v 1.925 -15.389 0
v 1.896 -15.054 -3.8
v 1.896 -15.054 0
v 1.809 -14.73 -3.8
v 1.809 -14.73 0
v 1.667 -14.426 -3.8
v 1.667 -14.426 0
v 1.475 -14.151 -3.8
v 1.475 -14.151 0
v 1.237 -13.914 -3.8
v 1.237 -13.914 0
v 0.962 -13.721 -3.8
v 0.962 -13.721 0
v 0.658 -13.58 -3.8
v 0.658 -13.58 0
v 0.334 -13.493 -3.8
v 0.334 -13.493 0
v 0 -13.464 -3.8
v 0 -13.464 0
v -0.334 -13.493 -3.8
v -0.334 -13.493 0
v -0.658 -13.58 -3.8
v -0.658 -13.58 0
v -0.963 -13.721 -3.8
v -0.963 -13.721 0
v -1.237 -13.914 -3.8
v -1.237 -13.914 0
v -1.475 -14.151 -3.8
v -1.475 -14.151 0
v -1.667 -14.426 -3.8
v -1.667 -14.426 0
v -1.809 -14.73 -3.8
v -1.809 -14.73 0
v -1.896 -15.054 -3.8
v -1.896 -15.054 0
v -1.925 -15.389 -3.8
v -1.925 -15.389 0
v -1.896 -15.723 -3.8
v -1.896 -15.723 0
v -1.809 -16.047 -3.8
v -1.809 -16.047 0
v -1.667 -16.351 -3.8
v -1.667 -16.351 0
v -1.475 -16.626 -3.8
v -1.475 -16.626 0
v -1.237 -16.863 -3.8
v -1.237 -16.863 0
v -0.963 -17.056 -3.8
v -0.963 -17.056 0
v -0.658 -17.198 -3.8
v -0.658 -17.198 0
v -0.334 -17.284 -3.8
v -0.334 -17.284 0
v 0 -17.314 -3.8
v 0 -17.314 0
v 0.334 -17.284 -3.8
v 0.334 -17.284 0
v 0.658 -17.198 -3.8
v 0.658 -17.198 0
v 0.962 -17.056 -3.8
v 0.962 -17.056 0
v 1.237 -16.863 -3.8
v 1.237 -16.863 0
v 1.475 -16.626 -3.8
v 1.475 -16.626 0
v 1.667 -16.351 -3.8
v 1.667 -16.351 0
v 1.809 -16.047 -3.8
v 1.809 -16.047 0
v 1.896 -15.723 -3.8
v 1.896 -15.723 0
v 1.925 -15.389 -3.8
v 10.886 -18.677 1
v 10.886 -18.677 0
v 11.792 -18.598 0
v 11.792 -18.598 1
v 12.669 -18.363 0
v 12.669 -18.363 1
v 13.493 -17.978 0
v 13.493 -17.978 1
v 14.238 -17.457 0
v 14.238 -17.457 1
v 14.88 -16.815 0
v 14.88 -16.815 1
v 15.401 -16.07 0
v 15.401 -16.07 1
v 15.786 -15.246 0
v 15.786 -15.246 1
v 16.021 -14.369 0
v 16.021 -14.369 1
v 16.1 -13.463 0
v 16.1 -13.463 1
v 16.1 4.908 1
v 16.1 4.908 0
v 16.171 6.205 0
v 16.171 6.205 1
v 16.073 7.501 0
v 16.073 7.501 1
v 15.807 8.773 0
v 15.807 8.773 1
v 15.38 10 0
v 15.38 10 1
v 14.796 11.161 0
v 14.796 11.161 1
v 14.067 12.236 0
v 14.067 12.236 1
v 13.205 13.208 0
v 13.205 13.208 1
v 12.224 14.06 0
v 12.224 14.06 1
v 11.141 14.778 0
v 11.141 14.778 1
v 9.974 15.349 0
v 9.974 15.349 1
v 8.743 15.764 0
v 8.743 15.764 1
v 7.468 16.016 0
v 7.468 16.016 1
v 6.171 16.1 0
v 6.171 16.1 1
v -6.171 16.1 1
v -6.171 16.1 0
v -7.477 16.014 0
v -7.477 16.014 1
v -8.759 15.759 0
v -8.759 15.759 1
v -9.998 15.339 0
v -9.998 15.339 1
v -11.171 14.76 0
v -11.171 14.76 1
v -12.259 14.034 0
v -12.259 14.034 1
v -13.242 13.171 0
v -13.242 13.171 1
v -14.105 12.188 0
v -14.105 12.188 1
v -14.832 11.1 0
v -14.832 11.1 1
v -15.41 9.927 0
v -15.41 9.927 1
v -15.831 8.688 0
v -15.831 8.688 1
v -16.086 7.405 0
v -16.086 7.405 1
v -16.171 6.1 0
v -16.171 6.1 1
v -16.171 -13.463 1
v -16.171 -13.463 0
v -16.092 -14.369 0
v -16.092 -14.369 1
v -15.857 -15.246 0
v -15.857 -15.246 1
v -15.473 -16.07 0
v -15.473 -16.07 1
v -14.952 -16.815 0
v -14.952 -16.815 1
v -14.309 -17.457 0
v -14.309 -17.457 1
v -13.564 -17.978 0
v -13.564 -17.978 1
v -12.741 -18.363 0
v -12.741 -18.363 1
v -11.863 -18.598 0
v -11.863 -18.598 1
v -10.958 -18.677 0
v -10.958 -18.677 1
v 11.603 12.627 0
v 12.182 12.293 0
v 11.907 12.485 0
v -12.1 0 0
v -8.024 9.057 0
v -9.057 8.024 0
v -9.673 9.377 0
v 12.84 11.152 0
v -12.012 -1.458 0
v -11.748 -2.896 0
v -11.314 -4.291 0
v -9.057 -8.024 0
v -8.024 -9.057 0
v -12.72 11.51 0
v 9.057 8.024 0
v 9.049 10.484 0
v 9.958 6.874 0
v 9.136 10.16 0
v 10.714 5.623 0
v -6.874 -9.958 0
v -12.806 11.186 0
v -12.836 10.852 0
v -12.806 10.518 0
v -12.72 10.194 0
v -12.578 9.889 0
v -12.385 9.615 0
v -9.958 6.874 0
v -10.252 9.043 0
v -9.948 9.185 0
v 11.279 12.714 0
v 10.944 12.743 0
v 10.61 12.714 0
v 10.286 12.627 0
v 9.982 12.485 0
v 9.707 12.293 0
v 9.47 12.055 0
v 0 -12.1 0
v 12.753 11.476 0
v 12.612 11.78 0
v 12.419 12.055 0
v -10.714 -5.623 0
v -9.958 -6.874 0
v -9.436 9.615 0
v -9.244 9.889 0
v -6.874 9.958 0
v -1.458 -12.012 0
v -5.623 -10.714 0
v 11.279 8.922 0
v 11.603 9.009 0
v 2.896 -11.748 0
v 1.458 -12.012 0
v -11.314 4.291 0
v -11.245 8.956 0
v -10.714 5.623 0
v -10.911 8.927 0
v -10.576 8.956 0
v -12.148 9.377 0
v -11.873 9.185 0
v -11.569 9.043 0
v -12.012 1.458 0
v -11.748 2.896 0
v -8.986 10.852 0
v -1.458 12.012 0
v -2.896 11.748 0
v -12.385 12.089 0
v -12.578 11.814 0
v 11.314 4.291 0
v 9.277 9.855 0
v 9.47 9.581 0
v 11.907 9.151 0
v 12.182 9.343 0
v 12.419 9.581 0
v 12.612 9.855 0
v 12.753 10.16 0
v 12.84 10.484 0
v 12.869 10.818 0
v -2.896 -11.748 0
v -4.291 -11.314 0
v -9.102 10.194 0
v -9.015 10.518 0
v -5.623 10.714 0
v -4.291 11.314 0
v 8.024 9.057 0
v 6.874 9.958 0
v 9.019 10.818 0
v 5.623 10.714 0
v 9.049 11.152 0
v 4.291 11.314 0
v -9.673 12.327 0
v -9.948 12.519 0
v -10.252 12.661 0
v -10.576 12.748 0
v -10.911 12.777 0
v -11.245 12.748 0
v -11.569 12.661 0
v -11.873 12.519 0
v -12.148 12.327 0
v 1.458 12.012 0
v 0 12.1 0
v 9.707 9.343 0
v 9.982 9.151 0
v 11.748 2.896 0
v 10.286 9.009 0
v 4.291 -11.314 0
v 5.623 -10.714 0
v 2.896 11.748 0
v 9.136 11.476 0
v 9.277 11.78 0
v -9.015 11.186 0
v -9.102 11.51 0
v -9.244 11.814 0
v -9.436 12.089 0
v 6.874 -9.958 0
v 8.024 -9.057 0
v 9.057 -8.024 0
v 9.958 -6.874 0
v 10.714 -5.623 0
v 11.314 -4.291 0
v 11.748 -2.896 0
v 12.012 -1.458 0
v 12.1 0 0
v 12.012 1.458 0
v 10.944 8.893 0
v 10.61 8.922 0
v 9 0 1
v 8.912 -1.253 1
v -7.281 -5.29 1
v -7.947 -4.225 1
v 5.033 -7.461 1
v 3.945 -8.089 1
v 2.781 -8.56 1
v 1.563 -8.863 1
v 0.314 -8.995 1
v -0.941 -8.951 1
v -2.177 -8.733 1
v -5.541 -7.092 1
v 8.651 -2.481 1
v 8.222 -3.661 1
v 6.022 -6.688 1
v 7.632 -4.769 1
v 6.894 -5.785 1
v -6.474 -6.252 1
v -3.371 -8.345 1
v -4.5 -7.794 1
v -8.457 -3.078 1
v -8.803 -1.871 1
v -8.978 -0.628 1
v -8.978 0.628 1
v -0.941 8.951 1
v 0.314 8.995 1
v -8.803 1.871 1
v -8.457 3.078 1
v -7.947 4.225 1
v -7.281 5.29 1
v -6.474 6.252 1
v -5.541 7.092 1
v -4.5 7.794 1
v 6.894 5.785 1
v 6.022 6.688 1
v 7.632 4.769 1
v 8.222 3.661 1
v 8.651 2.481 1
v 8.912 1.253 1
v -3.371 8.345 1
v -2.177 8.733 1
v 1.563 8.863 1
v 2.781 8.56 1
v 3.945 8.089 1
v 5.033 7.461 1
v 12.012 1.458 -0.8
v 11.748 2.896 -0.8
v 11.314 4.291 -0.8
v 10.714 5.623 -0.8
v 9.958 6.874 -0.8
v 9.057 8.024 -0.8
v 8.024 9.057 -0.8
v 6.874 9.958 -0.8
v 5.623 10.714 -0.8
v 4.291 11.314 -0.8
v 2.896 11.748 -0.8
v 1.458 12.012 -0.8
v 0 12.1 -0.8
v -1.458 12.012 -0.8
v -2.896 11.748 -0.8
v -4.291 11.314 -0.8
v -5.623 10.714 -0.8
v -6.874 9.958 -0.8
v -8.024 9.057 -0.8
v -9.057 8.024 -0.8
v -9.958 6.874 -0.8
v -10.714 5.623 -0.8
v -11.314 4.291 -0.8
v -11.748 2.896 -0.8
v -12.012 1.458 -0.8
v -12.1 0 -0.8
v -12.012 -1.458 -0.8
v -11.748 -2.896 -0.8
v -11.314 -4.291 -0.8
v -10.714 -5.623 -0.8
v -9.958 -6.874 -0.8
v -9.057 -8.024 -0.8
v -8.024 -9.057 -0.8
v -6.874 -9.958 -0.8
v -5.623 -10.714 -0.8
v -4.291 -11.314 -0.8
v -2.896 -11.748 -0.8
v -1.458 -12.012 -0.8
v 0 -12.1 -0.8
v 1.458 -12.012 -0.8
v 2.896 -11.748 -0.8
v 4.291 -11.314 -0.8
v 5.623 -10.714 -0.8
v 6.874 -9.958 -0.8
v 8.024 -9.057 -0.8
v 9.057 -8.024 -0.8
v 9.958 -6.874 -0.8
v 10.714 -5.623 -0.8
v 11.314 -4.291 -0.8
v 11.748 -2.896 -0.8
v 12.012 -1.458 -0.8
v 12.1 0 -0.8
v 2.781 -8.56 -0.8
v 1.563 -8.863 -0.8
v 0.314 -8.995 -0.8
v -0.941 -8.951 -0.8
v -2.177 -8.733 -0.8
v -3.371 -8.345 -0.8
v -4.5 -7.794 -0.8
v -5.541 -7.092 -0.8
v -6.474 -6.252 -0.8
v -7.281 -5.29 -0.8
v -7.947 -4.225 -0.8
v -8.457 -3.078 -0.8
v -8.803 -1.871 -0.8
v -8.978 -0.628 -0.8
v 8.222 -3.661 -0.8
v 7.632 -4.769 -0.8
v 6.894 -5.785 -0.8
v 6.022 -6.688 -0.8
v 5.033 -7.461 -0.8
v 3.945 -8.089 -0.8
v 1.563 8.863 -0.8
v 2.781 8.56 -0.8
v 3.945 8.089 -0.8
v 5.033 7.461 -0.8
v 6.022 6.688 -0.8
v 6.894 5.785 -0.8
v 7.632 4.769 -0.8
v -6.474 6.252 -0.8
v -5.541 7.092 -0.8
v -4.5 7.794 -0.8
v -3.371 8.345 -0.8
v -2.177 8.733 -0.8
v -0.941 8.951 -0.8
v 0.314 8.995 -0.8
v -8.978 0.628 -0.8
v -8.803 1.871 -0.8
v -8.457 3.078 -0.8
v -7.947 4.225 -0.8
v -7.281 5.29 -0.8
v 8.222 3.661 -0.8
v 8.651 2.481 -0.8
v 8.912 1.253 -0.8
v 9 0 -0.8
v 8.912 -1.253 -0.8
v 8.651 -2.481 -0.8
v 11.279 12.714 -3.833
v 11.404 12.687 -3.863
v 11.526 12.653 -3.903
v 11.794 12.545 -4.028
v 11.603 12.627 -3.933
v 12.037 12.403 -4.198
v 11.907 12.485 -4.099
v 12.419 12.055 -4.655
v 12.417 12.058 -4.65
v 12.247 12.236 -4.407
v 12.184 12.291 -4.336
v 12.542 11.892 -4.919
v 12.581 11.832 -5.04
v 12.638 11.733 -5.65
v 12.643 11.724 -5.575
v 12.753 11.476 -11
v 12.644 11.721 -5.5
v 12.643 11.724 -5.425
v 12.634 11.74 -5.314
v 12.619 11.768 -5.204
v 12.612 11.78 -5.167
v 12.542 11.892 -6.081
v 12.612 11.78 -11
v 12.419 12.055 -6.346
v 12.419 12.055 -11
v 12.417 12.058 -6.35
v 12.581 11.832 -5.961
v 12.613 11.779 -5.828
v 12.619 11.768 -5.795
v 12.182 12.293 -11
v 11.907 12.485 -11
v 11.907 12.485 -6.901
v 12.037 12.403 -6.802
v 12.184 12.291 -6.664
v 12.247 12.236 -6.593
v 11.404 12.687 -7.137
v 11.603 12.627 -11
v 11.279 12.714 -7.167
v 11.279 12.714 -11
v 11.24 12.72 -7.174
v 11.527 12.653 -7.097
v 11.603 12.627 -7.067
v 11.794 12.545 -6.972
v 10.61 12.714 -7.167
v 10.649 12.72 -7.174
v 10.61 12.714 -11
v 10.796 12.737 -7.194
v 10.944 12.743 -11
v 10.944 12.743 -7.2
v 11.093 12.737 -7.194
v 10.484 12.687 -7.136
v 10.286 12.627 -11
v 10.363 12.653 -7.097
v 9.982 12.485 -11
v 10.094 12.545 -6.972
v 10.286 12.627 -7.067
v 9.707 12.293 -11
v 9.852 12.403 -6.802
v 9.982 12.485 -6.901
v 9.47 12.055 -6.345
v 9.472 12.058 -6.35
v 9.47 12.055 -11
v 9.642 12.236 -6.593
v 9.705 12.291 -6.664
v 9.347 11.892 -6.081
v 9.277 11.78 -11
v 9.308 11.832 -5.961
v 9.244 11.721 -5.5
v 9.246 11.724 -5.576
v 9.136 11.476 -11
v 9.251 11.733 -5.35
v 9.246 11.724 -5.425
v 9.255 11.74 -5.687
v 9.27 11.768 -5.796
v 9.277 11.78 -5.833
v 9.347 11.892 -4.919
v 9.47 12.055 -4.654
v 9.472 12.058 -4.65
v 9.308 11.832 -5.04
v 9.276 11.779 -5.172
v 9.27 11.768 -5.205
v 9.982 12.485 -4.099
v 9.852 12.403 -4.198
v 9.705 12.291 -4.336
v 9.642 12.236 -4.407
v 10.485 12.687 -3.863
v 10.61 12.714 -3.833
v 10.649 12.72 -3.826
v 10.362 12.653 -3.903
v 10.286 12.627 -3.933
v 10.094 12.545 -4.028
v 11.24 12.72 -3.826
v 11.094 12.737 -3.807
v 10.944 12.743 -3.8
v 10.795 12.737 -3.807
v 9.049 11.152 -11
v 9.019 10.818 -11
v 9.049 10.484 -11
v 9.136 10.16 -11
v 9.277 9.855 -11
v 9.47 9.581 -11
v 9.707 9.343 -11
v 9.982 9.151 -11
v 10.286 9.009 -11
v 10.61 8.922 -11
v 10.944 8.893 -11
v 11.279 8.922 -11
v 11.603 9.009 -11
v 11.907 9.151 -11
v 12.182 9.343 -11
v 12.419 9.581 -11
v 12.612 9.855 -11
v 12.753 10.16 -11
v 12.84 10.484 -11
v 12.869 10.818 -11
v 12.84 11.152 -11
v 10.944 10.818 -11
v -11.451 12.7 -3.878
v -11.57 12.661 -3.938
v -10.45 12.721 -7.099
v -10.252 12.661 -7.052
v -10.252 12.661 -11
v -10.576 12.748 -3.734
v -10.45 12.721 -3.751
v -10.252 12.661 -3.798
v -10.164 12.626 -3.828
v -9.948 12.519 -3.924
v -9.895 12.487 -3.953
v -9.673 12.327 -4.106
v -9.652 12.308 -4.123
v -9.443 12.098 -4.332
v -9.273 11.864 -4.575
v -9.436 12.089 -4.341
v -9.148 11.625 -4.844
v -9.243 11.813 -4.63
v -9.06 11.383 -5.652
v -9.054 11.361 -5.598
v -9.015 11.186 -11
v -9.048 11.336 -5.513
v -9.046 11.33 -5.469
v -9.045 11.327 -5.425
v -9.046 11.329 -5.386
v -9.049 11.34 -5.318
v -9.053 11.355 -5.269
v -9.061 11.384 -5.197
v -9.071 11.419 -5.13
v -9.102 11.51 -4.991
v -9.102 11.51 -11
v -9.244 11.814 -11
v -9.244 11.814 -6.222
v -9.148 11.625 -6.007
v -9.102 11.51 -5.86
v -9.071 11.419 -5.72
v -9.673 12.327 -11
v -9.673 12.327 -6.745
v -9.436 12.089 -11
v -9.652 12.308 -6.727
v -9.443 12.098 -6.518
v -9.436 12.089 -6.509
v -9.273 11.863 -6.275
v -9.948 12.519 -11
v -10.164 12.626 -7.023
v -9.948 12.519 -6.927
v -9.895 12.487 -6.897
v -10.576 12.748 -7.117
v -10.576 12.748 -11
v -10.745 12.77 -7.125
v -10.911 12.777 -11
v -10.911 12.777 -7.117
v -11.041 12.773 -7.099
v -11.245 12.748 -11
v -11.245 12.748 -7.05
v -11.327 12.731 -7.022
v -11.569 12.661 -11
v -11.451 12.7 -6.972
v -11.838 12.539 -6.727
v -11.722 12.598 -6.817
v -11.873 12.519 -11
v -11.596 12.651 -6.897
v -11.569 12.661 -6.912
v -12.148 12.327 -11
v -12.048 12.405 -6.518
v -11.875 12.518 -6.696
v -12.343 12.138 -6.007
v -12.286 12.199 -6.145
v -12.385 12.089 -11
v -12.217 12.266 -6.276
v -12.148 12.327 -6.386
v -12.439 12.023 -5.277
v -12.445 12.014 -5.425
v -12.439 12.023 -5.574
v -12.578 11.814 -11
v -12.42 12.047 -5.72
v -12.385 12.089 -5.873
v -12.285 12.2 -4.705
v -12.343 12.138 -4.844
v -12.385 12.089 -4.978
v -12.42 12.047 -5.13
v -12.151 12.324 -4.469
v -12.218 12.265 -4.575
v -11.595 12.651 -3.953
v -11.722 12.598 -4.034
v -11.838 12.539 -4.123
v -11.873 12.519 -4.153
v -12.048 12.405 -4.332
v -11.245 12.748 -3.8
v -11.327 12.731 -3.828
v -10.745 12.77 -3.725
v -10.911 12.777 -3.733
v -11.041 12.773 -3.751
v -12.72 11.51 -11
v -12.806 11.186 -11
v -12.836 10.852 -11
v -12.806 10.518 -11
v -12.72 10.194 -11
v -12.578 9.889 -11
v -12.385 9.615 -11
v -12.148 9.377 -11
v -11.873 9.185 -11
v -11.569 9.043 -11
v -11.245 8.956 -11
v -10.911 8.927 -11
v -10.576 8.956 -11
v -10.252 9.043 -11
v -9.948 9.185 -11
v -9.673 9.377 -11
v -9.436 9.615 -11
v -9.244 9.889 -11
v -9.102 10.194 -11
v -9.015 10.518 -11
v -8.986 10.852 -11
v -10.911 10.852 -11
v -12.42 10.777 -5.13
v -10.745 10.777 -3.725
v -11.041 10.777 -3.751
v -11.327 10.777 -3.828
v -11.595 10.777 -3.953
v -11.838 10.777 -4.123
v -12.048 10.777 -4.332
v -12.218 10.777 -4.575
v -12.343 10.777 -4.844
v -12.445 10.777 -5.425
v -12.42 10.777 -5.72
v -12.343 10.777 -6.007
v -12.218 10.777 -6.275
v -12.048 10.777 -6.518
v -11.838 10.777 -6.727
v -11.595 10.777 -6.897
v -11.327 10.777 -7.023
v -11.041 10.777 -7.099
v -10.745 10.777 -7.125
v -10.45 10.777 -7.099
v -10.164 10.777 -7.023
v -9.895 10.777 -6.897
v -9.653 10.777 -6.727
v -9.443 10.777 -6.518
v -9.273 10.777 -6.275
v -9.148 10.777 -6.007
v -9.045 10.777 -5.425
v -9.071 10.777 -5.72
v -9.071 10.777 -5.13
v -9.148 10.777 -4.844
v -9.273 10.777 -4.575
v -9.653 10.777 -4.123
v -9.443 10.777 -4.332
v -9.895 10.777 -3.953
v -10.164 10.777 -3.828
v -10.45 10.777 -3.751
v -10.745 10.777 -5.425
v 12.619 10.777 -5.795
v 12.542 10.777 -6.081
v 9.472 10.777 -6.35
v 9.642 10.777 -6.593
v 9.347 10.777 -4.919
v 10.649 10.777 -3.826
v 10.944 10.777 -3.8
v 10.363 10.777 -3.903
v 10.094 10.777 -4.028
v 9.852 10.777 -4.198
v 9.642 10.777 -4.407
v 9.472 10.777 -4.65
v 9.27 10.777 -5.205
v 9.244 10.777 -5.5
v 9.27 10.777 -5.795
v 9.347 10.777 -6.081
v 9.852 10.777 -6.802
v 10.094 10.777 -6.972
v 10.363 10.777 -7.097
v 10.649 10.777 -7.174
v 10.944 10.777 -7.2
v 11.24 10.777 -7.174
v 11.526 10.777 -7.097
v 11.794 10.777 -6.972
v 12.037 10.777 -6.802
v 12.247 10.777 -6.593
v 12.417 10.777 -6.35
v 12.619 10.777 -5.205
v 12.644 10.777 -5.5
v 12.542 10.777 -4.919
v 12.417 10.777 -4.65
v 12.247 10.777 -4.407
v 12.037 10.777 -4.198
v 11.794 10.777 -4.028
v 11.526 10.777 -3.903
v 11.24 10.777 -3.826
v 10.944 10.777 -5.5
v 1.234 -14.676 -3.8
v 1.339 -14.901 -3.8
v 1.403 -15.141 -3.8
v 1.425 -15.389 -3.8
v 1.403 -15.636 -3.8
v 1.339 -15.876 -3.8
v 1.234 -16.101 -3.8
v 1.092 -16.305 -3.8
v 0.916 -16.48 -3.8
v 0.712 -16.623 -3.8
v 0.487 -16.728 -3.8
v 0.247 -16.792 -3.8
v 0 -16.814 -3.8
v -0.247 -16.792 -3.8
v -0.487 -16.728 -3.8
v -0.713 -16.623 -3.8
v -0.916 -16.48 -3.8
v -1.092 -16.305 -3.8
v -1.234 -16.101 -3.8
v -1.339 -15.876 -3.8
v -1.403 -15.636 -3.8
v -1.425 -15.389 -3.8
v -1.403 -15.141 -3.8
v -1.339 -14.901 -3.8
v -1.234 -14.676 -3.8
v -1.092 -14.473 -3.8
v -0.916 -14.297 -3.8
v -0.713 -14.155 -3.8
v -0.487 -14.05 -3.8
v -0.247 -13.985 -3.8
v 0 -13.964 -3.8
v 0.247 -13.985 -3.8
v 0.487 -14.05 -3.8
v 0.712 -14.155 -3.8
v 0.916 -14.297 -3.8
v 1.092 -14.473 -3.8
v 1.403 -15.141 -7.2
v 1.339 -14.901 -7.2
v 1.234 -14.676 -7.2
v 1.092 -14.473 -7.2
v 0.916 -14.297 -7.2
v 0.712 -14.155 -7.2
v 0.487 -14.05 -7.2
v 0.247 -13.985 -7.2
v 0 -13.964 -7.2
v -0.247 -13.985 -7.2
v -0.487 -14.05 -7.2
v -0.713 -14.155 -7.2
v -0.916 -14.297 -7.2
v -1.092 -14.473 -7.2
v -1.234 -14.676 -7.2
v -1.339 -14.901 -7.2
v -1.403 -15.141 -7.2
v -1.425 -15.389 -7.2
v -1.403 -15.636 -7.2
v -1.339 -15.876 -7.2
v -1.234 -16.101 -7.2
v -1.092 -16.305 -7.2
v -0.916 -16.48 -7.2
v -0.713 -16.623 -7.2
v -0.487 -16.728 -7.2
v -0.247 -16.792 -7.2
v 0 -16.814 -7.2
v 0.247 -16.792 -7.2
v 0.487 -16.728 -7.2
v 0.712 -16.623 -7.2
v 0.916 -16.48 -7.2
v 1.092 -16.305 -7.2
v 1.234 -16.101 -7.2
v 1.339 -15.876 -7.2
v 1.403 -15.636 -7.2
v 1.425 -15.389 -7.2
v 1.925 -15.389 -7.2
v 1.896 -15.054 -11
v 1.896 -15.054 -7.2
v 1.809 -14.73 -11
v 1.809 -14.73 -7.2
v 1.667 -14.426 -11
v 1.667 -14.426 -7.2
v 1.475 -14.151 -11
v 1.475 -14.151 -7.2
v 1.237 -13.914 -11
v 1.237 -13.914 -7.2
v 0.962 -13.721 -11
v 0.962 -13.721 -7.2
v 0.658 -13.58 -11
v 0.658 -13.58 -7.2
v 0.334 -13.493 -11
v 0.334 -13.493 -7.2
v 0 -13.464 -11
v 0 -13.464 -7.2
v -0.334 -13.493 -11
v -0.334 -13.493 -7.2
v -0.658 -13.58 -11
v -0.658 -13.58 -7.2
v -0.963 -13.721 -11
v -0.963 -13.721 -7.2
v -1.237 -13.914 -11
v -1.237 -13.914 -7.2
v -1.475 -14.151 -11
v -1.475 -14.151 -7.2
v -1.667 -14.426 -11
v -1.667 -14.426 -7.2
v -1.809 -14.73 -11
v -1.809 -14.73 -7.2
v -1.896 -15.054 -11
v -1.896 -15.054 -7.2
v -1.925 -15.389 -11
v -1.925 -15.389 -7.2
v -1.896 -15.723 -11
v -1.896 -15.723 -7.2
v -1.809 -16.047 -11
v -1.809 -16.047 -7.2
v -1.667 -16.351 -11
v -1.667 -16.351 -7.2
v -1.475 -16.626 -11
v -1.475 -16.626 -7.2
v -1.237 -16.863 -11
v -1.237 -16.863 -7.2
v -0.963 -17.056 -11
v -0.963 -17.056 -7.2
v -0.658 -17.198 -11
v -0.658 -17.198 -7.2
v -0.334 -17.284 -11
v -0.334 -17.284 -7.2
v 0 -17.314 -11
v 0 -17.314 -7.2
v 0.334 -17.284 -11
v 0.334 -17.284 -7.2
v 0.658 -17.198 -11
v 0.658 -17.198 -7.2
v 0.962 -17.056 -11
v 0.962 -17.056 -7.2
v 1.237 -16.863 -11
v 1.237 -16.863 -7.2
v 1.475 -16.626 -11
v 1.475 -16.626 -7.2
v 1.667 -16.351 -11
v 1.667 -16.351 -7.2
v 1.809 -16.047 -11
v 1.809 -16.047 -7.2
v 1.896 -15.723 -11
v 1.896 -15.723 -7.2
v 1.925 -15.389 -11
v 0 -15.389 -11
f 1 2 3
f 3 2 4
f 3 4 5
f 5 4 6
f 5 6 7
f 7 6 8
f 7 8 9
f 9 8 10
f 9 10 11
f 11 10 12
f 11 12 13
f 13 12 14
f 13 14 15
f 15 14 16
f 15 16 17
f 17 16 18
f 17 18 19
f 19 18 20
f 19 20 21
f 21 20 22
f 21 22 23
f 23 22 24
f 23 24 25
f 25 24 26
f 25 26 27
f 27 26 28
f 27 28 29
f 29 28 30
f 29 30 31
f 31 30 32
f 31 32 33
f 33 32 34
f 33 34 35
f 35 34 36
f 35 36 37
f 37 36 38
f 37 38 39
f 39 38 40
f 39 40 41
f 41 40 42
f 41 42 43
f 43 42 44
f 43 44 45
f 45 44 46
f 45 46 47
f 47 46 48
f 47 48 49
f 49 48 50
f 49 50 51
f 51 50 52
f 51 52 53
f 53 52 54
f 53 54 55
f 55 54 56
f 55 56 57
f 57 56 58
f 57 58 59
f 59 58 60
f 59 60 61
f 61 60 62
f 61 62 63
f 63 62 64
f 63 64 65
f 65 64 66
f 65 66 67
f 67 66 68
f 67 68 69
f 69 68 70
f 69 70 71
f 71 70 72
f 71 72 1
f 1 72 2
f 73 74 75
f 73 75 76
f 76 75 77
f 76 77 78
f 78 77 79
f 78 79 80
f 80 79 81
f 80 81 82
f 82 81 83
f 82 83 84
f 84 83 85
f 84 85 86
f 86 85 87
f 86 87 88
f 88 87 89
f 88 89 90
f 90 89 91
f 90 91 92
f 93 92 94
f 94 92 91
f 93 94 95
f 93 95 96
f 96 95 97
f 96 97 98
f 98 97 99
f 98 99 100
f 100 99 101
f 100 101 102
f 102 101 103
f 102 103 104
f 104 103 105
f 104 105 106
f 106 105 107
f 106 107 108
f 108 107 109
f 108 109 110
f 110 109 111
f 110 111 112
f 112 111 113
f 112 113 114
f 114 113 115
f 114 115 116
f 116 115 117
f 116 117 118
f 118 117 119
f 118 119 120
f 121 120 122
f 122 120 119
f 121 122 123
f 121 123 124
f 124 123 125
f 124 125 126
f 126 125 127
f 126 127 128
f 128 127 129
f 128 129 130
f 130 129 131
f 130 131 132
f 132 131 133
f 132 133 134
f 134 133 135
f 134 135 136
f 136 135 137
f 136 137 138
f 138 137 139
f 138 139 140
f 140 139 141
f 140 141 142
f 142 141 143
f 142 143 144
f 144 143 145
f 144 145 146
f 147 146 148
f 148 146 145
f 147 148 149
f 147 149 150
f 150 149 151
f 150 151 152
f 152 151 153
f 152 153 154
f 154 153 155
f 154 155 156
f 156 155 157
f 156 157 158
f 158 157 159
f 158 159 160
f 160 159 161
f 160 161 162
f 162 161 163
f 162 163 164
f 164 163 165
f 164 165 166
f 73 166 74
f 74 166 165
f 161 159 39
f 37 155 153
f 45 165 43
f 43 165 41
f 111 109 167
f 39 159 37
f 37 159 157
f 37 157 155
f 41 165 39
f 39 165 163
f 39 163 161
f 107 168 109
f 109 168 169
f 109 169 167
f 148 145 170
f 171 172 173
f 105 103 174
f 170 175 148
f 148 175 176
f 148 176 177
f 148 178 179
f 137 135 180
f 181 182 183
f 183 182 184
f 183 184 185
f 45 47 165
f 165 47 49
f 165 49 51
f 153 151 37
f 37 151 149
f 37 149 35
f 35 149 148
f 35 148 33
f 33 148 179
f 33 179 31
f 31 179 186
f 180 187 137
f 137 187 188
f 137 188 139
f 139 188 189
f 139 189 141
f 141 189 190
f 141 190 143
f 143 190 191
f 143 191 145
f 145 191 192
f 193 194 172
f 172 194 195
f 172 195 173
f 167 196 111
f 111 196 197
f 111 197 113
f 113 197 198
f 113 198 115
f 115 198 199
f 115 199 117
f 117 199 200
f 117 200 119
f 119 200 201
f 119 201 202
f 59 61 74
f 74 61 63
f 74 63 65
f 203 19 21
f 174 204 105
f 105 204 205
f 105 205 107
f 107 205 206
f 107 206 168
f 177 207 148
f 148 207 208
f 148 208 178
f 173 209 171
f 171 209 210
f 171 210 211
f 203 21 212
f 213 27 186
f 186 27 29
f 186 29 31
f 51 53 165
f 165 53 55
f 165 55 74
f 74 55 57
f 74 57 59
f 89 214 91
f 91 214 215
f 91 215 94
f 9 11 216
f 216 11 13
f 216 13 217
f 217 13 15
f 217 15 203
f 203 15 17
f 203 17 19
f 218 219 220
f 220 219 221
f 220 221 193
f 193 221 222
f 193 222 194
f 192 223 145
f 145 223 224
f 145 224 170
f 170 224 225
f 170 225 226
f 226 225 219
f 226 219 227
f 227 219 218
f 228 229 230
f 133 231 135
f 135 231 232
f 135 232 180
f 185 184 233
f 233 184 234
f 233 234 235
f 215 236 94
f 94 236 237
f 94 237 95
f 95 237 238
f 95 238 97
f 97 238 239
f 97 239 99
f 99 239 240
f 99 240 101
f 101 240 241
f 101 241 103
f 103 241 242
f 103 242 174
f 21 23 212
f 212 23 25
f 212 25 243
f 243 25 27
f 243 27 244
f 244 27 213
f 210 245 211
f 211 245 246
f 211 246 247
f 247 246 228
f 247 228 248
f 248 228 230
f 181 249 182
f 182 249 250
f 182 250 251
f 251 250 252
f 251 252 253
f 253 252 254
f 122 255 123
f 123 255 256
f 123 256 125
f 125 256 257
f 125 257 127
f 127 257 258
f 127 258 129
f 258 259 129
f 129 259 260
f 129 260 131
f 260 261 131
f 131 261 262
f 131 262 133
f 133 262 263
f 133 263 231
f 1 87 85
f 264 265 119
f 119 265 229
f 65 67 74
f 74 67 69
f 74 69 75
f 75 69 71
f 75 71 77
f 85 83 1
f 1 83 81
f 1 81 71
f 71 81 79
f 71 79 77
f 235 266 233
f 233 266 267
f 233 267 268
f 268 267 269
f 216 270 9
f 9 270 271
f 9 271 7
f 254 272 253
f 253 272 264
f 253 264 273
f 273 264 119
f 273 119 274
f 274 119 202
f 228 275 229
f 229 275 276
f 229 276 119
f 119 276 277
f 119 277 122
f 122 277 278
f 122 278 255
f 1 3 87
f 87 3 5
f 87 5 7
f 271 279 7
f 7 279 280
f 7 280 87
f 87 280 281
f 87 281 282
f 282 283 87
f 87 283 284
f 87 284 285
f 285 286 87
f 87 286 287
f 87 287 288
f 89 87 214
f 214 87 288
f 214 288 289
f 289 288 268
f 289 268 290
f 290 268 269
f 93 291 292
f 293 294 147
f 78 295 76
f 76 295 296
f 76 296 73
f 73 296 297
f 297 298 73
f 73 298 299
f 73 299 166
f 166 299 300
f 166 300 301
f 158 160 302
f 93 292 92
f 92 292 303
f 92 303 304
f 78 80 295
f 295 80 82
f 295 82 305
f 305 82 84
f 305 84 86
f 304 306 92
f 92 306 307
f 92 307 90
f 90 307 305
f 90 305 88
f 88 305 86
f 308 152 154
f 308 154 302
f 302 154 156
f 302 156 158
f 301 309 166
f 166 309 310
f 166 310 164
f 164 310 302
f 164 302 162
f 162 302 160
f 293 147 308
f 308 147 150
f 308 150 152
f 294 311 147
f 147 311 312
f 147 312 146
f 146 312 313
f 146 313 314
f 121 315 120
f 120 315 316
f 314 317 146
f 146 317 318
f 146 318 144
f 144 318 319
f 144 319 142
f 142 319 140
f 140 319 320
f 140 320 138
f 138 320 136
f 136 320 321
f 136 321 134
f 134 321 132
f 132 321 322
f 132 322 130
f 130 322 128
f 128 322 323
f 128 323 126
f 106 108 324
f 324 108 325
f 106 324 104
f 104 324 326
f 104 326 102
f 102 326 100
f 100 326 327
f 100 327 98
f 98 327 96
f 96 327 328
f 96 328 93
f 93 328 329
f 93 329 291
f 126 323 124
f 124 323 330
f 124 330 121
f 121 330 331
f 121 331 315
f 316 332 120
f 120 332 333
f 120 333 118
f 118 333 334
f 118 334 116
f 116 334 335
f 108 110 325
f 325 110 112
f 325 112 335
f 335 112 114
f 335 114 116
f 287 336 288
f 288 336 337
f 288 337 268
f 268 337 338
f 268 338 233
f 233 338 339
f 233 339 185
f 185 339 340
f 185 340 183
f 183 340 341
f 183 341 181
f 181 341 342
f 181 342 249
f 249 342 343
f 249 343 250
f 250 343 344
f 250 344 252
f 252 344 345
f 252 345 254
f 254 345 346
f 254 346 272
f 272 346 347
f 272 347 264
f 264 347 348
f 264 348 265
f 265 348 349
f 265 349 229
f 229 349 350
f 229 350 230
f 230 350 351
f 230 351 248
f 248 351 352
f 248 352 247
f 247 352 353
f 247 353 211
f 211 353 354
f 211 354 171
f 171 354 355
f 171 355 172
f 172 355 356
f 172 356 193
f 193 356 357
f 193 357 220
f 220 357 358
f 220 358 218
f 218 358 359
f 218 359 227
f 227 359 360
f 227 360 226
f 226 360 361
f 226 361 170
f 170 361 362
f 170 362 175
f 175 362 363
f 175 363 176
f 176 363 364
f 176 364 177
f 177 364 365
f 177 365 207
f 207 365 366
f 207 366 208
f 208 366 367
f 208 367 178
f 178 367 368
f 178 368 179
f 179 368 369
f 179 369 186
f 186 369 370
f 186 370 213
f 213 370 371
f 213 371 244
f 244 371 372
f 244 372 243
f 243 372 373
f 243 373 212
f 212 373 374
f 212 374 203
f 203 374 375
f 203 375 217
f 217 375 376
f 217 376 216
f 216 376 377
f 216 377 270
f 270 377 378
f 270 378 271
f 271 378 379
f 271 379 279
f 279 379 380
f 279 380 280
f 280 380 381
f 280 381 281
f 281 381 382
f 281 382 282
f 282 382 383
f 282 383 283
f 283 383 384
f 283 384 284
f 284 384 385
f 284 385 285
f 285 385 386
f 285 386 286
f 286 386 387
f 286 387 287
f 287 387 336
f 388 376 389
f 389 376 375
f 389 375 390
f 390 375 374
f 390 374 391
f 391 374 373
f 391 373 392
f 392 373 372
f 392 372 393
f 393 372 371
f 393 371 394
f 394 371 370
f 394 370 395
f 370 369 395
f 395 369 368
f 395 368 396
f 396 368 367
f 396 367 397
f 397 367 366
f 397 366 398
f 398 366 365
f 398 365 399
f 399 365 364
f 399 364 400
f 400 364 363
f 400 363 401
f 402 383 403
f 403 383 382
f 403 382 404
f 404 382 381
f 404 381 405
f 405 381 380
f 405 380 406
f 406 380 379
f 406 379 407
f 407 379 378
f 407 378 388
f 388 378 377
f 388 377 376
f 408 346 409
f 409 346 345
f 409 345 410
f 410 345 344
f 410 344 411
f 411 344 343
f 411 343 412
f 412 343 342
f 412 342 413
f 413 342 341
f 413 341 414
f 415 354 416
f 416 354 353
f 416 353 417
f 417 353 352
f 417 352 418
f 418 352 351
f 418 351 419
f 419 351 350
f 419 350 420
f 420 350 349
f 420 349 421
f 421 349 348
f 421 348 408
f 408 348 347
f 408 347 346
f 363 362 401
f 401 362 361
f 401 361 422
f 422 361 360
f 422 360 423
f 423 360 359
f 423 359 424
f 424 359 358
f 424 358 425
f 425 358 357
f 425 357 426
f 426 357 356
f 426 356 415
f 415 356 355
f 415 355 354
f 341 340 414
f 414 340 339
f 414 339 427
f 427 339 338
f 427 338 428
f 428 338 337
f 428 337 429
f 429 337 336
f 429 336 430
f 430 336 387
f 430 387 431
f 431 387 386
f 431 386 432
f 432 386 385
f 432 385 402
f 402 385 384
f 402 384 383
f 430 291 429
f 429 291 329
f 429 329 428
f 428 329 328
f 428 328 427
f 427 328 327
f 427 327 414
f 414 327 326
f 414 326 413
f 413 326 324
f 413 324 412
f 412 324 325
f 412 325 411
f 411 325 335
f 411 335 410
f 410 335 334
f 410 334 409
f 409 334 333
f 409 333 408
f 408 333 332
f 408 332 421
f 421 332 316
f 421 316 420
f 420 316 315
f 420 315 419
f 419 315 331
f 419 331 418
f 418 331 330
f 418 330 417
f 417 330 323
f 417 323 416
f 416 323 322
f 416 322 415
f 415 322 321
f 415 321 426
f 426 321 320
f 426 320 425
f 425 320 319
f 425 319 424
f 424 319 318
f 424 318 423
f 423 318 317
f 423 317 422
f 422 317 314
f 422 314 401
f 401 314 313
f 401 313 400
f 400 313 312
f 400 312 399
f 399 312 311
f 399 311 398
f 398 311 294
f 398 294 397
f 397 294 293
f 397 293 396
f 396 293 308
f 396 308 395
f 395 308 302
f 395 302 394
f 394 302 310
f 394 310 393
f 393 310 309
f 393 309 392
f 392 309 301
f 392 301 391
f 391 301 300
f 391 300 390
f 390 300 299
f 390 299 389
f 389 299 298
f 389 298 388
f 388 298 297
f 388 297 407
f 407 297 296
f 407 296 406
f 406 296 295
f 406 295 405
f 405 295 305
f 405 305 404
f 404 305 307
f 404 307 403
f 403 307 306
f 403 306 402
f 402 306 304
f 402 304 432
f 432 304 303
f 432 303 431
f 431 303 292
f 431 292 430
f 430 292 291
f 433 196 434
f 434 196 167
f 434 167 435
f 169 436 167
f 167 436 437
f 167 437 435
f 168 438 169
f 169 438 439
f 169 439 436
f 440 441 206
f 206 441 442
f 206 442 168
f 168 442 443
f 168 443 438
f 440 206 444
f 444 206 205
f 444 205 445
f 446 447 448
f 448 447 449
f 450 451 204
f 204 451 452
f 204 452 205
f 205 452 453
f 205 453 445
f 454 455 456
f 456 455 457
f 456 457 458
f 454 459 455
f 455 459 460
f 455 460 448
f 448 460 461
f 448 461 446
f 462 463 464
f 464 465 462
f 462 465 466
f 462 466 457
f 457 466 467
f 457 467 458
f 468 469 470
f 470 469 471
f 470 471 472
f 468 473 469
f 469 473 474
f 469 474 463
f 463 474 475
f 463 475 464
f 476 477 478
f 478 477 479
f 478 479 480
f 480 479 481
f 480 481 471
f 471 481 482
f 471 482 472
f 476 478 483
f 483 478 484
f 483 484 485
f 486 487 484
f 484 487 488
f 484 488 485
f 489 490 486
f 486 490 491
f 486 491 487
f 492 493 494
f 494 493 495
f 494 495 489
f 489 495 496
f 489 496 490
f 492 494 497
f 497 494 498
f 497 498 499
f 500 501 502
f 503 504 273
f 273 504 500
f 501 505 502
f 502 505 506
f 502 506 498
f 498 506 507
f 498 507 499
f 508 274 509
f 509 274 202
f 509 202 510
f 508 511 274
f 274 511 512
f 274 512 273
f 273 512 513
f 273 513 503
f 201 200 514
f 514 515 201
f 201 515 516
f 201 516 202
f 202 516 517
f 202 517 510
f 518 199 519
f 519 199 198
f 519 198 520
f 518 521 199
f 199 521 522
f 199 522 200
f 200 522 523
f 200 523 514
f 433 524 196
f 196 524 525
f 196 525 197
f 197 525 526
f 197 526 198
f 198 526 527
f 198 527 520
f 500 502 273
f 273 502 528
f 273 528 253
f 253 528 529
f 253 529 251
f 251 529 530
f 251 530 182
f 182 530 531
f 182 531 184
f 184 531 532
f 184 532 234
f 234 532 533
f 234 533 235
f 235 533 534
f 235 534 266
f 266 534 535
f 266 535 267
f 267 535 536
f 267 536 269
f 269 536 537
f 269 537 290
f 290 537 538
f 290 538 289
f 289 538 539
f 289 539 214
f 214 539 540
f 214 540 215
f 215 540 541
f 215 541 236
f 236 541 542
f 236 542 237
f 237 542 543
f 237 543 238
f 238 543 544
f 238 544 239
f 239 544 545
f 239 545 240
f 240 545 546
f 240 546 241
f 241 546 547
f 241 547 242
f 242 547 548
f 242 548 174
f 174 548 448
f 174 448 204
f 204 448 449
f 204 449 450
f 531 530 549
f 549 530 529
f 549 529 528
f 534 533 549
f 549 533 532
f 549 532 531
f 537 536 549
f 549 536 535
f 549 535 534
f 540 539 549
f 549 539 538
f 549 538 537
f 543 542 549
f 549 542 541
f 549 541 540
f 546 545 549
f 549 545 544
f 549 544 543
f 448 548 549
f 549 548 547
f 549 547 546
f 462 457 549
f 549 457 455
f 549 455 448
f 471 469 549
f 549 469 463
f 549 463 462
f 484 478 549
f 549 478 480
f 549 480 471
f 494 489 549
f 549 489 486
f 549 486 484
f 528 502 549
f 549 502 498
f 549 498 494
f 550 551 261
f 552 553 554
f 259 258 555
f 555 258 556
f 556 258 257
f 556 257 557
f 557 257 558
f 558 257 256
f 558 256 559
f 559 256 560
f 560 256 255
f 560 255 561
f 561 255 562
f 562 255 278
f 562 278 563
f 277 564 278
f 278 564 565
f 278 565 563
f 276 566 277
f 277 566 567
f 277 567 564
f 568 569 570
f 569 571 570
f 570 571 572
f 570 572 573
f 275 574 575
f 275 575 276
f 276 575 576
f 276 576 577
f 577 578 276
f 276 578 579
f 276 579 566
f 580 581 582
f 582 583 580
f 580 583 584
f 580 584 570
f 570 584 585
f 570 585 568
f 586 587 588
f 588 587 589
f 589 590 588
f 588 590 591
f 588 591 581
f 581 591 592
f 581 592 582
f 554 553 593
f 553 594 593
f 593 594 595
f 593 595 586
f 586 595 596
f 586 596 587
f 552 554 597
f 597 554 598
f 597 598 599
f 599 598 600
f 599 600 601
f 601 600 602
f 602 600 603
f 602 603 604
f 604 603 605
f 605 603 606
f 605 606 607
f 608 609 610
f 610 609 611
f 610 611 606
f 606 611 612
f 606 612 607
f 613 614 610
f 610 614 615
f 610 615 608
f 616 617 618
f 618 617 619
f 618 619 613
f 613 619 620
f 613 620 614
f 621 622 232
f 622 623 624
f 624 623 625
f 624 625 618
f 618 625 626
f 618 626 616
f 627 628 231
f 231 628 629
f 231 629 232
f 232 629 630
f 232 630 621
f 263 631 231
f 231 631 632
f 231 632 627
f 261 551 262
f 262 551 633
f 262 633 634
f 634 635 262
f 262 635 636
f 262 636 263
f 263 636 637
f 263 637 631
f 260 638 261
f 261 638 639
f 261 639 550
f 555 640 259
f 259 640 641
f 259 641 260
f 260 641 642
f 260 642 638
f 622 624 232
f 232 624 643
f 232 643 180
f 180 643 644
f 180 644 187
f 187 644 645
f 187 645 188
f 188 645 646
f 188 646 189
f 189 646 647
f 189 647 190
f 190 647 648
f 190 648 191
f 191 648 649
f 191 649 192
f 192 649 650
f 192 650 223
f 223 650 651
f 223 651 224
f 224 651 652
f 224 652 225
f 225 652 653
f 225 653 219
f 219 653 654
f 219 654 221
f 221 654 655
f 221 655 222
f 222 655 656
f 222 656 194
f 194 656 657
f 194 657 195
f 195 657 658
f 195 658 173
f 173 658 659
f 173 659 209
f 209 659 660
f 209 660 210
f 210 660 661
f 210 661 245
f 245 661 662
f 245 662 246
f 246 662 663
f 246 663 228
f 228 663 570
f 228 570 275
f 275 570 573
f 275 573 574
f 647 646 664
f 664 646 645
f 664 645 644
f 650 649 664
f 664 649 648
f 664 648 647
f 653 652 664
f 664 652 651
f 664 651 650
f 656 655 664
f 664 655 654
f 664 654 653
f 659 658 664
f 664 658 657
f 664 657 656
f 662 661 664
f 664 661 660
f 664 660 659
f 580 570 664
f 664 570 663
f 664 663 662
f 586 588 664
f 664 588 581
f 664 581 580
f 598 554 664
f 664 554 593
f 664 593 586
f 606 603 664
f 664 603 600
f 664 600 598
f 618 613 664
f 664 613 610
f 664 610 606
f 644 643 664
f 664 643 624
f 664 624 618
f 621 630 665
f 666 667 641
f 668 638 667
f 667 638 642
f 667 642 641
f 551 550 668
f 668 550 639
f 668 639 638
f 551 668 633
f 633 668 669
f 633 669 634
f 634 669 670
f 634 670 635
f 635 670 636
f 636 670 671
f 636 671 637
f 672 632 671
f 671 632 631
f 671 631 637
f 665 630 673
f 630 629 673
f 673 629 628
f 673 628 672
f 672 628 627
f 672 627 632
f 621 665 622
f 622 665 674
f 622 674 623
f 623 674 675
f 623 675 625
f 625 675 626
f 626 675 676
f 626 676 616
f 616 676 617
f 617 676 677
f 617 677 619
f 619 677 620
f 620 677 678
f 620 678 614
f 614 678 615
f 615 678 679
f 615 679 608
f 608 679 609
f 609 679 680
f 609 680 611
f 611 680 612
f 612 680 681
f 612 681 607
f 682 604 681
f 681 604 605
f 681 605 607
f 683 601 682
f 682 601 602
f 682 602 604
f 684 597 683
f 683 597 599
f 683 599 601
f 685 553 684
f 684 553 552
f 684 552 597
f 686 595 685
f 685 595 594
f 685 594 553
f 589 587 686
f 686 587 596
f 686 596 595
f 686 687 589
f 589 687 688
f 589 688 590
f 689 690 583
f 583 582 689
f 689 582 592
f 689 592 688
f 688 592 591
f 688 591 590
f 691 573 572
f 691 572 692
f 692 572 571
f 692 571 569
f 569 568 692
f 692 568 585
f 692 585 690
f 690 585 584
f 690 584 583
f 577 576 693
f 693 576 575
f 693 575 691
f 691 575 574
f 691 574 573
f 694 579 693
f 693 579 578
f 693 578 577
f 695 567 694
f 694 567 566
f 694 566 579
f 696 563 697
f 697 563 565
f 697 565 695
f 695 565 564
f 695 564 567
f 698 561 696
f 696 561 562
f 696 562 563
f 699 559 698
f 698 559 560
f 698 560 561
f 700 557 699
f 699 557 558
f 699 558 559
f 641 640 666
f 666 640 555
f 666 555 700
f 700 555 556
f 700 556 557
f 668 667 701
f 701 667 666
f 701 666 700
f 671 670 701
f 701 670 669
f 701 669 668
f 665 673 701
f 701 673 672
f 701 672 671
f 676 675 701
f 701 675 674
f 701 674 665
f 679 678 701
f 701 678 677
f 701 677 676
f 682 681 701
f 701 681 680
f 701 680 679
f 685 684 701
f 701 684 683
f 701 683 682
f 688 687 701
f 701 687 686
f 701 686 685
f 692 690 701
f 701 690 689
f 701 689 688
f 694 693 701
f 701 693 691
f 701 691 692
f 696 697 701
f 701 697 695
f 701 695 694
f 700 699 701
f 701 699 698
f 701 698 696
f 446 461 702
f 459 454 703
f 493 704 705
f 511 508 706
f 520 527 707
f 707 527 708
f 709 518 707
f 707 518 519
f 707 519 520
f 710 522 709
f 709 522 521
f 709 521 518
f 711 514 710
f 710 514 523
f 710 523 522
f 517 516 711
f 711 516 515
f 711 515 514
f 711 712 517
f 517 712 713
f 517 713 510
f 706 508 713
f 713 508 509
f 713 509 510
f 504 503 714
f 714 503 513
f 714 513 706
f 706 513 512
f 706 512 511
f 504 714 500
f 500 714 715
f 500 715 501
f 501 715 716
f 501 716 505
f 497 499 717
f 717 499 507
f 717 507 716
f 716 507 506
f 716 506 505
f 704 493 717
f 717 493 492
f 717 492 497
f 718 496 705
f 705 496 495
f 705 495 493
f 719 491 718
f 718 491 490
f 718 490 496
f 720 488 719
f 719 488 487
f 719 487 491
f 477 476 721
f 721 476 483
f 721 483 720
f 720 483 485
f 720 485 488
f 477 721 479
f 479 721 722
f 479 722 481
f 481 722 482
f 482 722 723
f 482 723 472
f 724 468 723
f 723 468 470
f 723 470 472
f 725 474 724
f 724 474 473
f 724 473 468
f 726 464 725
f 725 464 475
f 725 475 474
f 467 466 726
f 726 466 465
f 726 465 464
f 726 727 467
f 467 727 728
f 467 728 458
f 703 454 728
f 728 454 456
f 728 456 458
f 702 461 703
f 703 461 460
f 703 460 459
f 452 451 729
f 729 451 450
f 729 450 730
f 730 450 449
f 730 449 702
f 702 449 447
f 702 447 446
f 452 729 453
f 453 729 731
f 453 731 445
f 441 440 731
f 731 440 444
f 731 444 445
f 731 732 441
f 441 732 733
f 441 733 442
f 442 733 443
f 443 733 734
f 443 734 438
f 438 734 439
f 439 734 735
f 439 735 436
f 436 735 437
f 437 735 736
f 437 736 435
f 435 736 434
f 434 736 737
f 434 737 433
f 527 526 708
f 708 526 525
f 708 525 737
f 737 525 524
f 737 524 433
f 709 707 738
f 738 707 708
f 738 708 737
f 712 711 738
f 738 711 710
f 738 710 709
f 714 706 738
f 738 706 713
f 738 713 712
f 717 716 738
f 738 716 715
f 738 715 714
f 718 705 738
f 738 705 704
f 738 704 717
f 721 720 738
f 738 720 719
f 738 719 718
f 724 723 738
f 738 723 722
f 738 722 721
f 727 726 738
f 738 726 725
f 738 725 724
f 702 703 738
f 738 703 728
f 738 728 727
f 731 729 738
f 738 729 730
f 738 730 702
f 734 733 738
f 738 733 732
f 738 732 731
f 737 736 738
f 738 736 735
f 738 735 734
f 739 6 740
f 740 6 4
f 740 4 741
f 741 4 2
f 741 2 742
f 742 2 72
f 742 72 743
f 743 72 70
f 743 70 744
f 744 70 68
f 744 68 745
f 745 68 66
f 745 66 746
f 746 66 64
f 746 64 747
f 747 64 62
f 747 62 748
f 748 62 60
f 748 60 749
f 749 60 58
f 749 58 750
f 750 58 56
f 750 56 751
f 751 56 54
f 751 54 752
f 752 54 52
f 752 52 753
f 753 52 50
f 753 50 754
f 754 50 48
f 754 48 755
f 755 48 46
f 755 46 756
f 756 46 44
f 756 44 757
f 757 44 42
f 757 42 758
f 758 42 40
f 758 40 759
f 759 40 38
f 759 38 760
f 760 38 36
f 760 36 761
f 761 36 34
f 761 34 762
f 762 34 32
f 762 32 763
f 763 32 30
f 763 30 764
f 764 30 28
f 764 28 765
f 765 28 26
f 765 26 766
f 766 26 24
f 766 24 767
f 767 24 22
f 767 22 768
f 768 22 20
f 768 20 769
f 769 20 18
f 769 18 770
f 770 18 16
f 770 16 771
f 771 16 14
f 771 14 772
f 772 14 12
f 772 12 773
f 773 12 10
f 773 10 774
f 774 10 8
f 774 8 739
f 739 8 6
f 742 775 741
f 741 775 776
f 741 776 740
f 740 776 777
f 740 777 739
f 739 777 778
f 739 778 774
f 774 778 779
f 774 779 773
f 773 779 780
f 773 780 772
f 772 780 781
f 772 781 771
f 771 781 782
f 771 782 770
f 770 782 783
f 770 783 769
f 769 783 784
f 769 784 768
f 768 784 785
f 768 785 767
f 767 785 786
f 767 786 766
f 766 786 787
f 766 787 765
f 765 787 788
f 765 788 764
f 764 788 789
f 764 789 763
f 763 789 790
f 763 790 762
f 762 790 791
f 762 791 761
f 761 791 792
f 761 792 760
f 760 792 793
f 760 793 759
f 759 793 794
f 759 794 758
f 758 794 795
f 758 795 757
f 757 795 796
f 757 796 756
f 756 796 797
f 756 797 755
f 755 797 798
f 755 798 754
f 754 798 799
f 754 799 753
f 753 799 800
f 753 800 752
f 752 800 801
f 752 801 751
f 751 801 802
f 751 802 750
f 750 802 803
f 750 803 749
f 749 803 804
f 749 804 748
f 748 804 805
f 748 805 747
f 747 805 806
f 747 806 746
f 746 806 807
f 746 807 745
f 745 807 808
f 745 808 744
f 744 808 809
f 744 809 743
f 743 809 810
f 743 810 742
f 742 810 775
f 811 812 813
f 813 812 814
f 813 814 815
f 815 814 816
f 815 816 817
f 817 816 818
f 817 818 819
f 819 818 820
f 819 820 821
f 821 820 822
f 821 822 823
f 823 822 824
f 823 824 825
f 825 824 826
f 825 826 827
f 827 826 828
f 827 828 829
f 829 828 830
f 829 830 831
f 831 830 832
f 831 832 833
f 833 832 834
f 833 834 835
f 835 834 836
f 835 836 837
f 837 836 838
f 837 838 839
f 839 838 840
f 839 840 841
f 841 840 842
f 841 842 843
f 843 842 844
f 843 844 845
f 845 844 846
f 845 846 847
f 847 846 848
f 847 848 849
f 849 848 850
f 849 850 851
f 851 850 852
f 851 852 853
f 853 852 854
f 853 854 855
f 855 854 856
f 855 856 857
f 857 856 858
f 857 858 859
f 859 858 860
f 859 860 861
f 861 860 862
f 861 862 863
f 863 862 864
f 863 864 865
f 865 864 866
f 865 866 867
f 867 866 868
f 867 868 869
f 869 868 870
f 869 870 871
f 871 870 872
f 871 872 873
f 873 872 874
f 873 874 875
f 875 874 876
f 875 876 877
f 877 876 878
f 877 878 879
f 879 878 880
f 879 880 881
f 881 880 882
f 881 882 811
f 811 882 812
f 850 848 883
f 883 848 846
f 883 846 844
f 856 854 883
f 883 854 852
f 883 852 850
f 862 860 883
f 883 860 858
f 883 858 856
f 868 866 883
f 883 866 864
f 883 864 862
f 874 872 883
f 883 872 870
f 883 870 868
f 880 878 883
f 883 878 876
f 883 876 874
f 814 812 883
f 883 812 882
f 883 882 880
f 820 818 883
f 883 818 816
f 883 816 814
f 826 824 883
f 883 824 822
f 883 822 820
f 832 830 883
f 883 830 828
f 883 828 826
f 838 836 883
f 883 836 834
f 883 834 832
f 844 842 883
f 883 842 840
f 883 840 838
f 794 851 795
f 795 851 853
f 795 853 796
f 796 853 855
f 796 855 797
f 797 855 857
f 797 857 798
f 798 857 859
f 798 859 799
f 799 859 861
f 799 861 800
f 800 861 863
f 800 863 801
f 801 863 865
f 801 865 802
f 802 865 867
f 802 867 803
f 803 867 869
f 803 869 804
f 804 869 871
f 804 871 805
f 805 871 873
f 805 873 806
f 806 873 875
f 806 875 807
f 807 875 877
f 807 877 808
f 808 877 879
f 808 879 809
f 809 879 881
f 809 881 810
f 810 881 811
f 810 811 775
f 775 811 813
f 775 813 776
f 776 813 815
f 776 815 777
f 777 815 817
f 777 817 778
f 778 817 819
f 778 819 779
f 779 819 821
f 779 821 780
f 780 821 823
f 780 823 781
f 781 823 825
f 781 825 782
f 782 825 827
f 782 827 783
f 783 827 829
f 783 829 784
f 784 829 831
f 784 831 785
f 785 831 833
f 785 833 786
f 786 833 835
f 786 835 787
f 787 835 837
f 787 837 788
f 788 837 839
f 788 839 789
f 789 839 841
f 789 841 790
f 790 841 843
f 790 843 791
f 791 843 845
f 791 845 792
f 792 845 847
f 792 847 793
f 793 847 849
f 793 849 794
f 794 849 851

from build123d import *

# Parameters (mm, degrees)
SCHIZZO1_R                   = 12.1
ESTRUSIONE_ESTRUSIONE1_DEPTH = 1
ESTRUSIONE_ESTRUSIONE2_START = -1.8
SCHIZZO2_R                   = 12.1
SCHIZZO2_R_2                 = 9
ESTRUSIONE_ESTRUSIONE2_DEPTH = 1.8
SCHIZZO3_R                   = 1.925
ESTRUSIONE_ESTRUSIONE3_DEPTH = 11
SCHIZZO4_R                   = 1.7
TAGLIO_ESTRUSIONE1_DEPTH     = 2
TAGLIO_ESTRUSIONE2_START     = -7.2
SCHIZZO5_R                   = 1.925
TAGLIO_ESTRUSIONE2_DEPTH     = 7.2
SCHIZZO6_R                   = 1.425
ESTRUSIONE_ESTRUSIONE4_DEPTH = 3.4
SCHIZZO7_R                   = 1.925
ESTRUSIONE_ESTRUSIONE5_DEPTH = 3.8


with BuildPart() as part:
    # Schizzo1 → Estrusione-Estrusione1 (new body)
    with BuildSketch(Plane.XY):
        with BuildLine():
            Line((-6.171311325, 16.1), (6.171311325, 16.1))
            ThreePointArc((6.171311325, 16.1), (13.651991863, 12.73622021), (16.1, 4.907883736))
            Line((16.1, 4.907883736), (16.1, -13.463208293))
            ThreePointArc((16.1, -13.463208293), (14.572915114, -17.149917336), (10.886206072, -18.677002221))
            Line((10.886206072, -18.677002221), (-10.957517396, -18.677002221))
            ThreePointArc((-10.957517396, -18.677002221), (-14.644226439, -17.149917336), (-16.171311325, -13.463208293))
            Line((-16.171311325, -13.463208293), (-16.171311325, 6.1))
            ThreePointArc((-16.171311325, 6.1), (-13.242379137, 13.171067812), (-6.171311325, 16.1))
        make_face()
        Circle(SCHIZZO1_R, mode=Mode.SUBTRACT)
    extrude(amount=ESTRUSIONE_ESTRUSIONE1_DEPTH)

    # Schizzo2 → Estrusione-Estrusione2 (add)
    with BuildSketch(Plane.XY.offset(1).offset(ESTRUSIONE_ESTRUSIONE2_START)):
        Circle(SCHIZZO2_R)
        Circle(SCHIZZO2_R_2, mode=Mode.SUBTRACT)
    extrude(amount=ESTRUSIONE_ESTRUSIONE2_DEPTH)

    # Schizzo3 → Estrusione-Estrusione3 (add)
    with BuildSketch(Plane(origin=(0, 0, 0), x_dir=(-1, 0, 0), z_dir=(0, 0, -1))):
        with Locations(Location((-10.944459062, 10.817992606, 0), (0, 0, 180))):
            Circle(SCHIZZO3_R)
        with Locations(Location((10.910719744, 10.851964601, 0), (0, 0, 180))):
            Circle(SCHIZZO3_R)
        with Locations(Location((0, -15.38859776, 0), (0, 0, 180))):
            Circle(SCHIZZO3_R)
    extrude(amount=ESTRUSIONE_ESTRUSIONE3_DEPTH)

    # Schizzo4 → Taglio-Estrusione1 (cut)
    with BuildSketch(Plane(origin=(0, 12.776964601, 0), x_dir=(1, 0, 0), z_dir=(0, 1, 0))):
        with BuildLine():
            ThreePointArc((-9.045346347, 5.425199137), (-9.603228747, 6.684392286), (-10.910719744, 7.117136381))
            Line((-10.910719744, 7.117136381), (-10.910719744, 3.733261892))
            ThreePointArc((-10.910719744, 3.733261892), (-9.603228747, 4.166005987), (-9.045346347, 5.425199137))
        make_face()
        with BuildLine():
            Line((-10.910719744, 3.733261892), (-10.910719744, 7.117136381))
            ThreePointArc((-10.910719744, 7.117136381), (-12.445346347, 5.425199137), (-10.910719744, 3.733261892))
        make_face()
        with Locations(Location((10.944459062, 5.5, 0), (0, 0, 270))):
            Circle(SCHIZZO4_R)
    extrude(amount=-TAGLIO_ESTRUSIONE1_DEPTH, mode=Mode.SUBTRACT)

    # Schizzo5 → Taglio-Estrusione2 (cut)
    with BuildSketch(Plane(origin=(0, 0, -11), x_dir=(-1, 0, 0), z_dir=(0, 0, -1)).offset(TAGLIO_ESTRUSIONE2_START)):
        with Locations(Location((0, -15.38859776, 0), (0, 0, 180))):
            Circle(SCHIZZO5_R)
    extrude(amount=TAGLIO_ESTRUSIONE2_DEPTH, mode=Mode.SUBTRACT)

    # Schizzo6 → Estrusione-Estrusione4 (add)
    with BuildSketch(Plane(origin=(0, 0, -3.8), x_dir=(-1, 0, 0), z_dir=(0, 0, -1))):
        with Locations((0, -15.38859776)):
            Circle(SCHIZZO6_R)
    extrude(amount=ESTRUSIONE_ESTRUSIONE4_DEPTH)

    # Schizzo7 → Estrusione-Estrusione5 (add)
    with BuildSketch(Plane(origin=(0, 0, -7.2), x_dir=(-1, 0, 0), z_dir=(0, 0, -1))):
        with Locations(Location((0, -15.38859776, 0), (0, 0, 180))):
            Circle(SCHIZZO7_R)
    extrude(amount=ESTRUSIONE_ESTRUSIONE5_DEPTH)


solid = part.part
